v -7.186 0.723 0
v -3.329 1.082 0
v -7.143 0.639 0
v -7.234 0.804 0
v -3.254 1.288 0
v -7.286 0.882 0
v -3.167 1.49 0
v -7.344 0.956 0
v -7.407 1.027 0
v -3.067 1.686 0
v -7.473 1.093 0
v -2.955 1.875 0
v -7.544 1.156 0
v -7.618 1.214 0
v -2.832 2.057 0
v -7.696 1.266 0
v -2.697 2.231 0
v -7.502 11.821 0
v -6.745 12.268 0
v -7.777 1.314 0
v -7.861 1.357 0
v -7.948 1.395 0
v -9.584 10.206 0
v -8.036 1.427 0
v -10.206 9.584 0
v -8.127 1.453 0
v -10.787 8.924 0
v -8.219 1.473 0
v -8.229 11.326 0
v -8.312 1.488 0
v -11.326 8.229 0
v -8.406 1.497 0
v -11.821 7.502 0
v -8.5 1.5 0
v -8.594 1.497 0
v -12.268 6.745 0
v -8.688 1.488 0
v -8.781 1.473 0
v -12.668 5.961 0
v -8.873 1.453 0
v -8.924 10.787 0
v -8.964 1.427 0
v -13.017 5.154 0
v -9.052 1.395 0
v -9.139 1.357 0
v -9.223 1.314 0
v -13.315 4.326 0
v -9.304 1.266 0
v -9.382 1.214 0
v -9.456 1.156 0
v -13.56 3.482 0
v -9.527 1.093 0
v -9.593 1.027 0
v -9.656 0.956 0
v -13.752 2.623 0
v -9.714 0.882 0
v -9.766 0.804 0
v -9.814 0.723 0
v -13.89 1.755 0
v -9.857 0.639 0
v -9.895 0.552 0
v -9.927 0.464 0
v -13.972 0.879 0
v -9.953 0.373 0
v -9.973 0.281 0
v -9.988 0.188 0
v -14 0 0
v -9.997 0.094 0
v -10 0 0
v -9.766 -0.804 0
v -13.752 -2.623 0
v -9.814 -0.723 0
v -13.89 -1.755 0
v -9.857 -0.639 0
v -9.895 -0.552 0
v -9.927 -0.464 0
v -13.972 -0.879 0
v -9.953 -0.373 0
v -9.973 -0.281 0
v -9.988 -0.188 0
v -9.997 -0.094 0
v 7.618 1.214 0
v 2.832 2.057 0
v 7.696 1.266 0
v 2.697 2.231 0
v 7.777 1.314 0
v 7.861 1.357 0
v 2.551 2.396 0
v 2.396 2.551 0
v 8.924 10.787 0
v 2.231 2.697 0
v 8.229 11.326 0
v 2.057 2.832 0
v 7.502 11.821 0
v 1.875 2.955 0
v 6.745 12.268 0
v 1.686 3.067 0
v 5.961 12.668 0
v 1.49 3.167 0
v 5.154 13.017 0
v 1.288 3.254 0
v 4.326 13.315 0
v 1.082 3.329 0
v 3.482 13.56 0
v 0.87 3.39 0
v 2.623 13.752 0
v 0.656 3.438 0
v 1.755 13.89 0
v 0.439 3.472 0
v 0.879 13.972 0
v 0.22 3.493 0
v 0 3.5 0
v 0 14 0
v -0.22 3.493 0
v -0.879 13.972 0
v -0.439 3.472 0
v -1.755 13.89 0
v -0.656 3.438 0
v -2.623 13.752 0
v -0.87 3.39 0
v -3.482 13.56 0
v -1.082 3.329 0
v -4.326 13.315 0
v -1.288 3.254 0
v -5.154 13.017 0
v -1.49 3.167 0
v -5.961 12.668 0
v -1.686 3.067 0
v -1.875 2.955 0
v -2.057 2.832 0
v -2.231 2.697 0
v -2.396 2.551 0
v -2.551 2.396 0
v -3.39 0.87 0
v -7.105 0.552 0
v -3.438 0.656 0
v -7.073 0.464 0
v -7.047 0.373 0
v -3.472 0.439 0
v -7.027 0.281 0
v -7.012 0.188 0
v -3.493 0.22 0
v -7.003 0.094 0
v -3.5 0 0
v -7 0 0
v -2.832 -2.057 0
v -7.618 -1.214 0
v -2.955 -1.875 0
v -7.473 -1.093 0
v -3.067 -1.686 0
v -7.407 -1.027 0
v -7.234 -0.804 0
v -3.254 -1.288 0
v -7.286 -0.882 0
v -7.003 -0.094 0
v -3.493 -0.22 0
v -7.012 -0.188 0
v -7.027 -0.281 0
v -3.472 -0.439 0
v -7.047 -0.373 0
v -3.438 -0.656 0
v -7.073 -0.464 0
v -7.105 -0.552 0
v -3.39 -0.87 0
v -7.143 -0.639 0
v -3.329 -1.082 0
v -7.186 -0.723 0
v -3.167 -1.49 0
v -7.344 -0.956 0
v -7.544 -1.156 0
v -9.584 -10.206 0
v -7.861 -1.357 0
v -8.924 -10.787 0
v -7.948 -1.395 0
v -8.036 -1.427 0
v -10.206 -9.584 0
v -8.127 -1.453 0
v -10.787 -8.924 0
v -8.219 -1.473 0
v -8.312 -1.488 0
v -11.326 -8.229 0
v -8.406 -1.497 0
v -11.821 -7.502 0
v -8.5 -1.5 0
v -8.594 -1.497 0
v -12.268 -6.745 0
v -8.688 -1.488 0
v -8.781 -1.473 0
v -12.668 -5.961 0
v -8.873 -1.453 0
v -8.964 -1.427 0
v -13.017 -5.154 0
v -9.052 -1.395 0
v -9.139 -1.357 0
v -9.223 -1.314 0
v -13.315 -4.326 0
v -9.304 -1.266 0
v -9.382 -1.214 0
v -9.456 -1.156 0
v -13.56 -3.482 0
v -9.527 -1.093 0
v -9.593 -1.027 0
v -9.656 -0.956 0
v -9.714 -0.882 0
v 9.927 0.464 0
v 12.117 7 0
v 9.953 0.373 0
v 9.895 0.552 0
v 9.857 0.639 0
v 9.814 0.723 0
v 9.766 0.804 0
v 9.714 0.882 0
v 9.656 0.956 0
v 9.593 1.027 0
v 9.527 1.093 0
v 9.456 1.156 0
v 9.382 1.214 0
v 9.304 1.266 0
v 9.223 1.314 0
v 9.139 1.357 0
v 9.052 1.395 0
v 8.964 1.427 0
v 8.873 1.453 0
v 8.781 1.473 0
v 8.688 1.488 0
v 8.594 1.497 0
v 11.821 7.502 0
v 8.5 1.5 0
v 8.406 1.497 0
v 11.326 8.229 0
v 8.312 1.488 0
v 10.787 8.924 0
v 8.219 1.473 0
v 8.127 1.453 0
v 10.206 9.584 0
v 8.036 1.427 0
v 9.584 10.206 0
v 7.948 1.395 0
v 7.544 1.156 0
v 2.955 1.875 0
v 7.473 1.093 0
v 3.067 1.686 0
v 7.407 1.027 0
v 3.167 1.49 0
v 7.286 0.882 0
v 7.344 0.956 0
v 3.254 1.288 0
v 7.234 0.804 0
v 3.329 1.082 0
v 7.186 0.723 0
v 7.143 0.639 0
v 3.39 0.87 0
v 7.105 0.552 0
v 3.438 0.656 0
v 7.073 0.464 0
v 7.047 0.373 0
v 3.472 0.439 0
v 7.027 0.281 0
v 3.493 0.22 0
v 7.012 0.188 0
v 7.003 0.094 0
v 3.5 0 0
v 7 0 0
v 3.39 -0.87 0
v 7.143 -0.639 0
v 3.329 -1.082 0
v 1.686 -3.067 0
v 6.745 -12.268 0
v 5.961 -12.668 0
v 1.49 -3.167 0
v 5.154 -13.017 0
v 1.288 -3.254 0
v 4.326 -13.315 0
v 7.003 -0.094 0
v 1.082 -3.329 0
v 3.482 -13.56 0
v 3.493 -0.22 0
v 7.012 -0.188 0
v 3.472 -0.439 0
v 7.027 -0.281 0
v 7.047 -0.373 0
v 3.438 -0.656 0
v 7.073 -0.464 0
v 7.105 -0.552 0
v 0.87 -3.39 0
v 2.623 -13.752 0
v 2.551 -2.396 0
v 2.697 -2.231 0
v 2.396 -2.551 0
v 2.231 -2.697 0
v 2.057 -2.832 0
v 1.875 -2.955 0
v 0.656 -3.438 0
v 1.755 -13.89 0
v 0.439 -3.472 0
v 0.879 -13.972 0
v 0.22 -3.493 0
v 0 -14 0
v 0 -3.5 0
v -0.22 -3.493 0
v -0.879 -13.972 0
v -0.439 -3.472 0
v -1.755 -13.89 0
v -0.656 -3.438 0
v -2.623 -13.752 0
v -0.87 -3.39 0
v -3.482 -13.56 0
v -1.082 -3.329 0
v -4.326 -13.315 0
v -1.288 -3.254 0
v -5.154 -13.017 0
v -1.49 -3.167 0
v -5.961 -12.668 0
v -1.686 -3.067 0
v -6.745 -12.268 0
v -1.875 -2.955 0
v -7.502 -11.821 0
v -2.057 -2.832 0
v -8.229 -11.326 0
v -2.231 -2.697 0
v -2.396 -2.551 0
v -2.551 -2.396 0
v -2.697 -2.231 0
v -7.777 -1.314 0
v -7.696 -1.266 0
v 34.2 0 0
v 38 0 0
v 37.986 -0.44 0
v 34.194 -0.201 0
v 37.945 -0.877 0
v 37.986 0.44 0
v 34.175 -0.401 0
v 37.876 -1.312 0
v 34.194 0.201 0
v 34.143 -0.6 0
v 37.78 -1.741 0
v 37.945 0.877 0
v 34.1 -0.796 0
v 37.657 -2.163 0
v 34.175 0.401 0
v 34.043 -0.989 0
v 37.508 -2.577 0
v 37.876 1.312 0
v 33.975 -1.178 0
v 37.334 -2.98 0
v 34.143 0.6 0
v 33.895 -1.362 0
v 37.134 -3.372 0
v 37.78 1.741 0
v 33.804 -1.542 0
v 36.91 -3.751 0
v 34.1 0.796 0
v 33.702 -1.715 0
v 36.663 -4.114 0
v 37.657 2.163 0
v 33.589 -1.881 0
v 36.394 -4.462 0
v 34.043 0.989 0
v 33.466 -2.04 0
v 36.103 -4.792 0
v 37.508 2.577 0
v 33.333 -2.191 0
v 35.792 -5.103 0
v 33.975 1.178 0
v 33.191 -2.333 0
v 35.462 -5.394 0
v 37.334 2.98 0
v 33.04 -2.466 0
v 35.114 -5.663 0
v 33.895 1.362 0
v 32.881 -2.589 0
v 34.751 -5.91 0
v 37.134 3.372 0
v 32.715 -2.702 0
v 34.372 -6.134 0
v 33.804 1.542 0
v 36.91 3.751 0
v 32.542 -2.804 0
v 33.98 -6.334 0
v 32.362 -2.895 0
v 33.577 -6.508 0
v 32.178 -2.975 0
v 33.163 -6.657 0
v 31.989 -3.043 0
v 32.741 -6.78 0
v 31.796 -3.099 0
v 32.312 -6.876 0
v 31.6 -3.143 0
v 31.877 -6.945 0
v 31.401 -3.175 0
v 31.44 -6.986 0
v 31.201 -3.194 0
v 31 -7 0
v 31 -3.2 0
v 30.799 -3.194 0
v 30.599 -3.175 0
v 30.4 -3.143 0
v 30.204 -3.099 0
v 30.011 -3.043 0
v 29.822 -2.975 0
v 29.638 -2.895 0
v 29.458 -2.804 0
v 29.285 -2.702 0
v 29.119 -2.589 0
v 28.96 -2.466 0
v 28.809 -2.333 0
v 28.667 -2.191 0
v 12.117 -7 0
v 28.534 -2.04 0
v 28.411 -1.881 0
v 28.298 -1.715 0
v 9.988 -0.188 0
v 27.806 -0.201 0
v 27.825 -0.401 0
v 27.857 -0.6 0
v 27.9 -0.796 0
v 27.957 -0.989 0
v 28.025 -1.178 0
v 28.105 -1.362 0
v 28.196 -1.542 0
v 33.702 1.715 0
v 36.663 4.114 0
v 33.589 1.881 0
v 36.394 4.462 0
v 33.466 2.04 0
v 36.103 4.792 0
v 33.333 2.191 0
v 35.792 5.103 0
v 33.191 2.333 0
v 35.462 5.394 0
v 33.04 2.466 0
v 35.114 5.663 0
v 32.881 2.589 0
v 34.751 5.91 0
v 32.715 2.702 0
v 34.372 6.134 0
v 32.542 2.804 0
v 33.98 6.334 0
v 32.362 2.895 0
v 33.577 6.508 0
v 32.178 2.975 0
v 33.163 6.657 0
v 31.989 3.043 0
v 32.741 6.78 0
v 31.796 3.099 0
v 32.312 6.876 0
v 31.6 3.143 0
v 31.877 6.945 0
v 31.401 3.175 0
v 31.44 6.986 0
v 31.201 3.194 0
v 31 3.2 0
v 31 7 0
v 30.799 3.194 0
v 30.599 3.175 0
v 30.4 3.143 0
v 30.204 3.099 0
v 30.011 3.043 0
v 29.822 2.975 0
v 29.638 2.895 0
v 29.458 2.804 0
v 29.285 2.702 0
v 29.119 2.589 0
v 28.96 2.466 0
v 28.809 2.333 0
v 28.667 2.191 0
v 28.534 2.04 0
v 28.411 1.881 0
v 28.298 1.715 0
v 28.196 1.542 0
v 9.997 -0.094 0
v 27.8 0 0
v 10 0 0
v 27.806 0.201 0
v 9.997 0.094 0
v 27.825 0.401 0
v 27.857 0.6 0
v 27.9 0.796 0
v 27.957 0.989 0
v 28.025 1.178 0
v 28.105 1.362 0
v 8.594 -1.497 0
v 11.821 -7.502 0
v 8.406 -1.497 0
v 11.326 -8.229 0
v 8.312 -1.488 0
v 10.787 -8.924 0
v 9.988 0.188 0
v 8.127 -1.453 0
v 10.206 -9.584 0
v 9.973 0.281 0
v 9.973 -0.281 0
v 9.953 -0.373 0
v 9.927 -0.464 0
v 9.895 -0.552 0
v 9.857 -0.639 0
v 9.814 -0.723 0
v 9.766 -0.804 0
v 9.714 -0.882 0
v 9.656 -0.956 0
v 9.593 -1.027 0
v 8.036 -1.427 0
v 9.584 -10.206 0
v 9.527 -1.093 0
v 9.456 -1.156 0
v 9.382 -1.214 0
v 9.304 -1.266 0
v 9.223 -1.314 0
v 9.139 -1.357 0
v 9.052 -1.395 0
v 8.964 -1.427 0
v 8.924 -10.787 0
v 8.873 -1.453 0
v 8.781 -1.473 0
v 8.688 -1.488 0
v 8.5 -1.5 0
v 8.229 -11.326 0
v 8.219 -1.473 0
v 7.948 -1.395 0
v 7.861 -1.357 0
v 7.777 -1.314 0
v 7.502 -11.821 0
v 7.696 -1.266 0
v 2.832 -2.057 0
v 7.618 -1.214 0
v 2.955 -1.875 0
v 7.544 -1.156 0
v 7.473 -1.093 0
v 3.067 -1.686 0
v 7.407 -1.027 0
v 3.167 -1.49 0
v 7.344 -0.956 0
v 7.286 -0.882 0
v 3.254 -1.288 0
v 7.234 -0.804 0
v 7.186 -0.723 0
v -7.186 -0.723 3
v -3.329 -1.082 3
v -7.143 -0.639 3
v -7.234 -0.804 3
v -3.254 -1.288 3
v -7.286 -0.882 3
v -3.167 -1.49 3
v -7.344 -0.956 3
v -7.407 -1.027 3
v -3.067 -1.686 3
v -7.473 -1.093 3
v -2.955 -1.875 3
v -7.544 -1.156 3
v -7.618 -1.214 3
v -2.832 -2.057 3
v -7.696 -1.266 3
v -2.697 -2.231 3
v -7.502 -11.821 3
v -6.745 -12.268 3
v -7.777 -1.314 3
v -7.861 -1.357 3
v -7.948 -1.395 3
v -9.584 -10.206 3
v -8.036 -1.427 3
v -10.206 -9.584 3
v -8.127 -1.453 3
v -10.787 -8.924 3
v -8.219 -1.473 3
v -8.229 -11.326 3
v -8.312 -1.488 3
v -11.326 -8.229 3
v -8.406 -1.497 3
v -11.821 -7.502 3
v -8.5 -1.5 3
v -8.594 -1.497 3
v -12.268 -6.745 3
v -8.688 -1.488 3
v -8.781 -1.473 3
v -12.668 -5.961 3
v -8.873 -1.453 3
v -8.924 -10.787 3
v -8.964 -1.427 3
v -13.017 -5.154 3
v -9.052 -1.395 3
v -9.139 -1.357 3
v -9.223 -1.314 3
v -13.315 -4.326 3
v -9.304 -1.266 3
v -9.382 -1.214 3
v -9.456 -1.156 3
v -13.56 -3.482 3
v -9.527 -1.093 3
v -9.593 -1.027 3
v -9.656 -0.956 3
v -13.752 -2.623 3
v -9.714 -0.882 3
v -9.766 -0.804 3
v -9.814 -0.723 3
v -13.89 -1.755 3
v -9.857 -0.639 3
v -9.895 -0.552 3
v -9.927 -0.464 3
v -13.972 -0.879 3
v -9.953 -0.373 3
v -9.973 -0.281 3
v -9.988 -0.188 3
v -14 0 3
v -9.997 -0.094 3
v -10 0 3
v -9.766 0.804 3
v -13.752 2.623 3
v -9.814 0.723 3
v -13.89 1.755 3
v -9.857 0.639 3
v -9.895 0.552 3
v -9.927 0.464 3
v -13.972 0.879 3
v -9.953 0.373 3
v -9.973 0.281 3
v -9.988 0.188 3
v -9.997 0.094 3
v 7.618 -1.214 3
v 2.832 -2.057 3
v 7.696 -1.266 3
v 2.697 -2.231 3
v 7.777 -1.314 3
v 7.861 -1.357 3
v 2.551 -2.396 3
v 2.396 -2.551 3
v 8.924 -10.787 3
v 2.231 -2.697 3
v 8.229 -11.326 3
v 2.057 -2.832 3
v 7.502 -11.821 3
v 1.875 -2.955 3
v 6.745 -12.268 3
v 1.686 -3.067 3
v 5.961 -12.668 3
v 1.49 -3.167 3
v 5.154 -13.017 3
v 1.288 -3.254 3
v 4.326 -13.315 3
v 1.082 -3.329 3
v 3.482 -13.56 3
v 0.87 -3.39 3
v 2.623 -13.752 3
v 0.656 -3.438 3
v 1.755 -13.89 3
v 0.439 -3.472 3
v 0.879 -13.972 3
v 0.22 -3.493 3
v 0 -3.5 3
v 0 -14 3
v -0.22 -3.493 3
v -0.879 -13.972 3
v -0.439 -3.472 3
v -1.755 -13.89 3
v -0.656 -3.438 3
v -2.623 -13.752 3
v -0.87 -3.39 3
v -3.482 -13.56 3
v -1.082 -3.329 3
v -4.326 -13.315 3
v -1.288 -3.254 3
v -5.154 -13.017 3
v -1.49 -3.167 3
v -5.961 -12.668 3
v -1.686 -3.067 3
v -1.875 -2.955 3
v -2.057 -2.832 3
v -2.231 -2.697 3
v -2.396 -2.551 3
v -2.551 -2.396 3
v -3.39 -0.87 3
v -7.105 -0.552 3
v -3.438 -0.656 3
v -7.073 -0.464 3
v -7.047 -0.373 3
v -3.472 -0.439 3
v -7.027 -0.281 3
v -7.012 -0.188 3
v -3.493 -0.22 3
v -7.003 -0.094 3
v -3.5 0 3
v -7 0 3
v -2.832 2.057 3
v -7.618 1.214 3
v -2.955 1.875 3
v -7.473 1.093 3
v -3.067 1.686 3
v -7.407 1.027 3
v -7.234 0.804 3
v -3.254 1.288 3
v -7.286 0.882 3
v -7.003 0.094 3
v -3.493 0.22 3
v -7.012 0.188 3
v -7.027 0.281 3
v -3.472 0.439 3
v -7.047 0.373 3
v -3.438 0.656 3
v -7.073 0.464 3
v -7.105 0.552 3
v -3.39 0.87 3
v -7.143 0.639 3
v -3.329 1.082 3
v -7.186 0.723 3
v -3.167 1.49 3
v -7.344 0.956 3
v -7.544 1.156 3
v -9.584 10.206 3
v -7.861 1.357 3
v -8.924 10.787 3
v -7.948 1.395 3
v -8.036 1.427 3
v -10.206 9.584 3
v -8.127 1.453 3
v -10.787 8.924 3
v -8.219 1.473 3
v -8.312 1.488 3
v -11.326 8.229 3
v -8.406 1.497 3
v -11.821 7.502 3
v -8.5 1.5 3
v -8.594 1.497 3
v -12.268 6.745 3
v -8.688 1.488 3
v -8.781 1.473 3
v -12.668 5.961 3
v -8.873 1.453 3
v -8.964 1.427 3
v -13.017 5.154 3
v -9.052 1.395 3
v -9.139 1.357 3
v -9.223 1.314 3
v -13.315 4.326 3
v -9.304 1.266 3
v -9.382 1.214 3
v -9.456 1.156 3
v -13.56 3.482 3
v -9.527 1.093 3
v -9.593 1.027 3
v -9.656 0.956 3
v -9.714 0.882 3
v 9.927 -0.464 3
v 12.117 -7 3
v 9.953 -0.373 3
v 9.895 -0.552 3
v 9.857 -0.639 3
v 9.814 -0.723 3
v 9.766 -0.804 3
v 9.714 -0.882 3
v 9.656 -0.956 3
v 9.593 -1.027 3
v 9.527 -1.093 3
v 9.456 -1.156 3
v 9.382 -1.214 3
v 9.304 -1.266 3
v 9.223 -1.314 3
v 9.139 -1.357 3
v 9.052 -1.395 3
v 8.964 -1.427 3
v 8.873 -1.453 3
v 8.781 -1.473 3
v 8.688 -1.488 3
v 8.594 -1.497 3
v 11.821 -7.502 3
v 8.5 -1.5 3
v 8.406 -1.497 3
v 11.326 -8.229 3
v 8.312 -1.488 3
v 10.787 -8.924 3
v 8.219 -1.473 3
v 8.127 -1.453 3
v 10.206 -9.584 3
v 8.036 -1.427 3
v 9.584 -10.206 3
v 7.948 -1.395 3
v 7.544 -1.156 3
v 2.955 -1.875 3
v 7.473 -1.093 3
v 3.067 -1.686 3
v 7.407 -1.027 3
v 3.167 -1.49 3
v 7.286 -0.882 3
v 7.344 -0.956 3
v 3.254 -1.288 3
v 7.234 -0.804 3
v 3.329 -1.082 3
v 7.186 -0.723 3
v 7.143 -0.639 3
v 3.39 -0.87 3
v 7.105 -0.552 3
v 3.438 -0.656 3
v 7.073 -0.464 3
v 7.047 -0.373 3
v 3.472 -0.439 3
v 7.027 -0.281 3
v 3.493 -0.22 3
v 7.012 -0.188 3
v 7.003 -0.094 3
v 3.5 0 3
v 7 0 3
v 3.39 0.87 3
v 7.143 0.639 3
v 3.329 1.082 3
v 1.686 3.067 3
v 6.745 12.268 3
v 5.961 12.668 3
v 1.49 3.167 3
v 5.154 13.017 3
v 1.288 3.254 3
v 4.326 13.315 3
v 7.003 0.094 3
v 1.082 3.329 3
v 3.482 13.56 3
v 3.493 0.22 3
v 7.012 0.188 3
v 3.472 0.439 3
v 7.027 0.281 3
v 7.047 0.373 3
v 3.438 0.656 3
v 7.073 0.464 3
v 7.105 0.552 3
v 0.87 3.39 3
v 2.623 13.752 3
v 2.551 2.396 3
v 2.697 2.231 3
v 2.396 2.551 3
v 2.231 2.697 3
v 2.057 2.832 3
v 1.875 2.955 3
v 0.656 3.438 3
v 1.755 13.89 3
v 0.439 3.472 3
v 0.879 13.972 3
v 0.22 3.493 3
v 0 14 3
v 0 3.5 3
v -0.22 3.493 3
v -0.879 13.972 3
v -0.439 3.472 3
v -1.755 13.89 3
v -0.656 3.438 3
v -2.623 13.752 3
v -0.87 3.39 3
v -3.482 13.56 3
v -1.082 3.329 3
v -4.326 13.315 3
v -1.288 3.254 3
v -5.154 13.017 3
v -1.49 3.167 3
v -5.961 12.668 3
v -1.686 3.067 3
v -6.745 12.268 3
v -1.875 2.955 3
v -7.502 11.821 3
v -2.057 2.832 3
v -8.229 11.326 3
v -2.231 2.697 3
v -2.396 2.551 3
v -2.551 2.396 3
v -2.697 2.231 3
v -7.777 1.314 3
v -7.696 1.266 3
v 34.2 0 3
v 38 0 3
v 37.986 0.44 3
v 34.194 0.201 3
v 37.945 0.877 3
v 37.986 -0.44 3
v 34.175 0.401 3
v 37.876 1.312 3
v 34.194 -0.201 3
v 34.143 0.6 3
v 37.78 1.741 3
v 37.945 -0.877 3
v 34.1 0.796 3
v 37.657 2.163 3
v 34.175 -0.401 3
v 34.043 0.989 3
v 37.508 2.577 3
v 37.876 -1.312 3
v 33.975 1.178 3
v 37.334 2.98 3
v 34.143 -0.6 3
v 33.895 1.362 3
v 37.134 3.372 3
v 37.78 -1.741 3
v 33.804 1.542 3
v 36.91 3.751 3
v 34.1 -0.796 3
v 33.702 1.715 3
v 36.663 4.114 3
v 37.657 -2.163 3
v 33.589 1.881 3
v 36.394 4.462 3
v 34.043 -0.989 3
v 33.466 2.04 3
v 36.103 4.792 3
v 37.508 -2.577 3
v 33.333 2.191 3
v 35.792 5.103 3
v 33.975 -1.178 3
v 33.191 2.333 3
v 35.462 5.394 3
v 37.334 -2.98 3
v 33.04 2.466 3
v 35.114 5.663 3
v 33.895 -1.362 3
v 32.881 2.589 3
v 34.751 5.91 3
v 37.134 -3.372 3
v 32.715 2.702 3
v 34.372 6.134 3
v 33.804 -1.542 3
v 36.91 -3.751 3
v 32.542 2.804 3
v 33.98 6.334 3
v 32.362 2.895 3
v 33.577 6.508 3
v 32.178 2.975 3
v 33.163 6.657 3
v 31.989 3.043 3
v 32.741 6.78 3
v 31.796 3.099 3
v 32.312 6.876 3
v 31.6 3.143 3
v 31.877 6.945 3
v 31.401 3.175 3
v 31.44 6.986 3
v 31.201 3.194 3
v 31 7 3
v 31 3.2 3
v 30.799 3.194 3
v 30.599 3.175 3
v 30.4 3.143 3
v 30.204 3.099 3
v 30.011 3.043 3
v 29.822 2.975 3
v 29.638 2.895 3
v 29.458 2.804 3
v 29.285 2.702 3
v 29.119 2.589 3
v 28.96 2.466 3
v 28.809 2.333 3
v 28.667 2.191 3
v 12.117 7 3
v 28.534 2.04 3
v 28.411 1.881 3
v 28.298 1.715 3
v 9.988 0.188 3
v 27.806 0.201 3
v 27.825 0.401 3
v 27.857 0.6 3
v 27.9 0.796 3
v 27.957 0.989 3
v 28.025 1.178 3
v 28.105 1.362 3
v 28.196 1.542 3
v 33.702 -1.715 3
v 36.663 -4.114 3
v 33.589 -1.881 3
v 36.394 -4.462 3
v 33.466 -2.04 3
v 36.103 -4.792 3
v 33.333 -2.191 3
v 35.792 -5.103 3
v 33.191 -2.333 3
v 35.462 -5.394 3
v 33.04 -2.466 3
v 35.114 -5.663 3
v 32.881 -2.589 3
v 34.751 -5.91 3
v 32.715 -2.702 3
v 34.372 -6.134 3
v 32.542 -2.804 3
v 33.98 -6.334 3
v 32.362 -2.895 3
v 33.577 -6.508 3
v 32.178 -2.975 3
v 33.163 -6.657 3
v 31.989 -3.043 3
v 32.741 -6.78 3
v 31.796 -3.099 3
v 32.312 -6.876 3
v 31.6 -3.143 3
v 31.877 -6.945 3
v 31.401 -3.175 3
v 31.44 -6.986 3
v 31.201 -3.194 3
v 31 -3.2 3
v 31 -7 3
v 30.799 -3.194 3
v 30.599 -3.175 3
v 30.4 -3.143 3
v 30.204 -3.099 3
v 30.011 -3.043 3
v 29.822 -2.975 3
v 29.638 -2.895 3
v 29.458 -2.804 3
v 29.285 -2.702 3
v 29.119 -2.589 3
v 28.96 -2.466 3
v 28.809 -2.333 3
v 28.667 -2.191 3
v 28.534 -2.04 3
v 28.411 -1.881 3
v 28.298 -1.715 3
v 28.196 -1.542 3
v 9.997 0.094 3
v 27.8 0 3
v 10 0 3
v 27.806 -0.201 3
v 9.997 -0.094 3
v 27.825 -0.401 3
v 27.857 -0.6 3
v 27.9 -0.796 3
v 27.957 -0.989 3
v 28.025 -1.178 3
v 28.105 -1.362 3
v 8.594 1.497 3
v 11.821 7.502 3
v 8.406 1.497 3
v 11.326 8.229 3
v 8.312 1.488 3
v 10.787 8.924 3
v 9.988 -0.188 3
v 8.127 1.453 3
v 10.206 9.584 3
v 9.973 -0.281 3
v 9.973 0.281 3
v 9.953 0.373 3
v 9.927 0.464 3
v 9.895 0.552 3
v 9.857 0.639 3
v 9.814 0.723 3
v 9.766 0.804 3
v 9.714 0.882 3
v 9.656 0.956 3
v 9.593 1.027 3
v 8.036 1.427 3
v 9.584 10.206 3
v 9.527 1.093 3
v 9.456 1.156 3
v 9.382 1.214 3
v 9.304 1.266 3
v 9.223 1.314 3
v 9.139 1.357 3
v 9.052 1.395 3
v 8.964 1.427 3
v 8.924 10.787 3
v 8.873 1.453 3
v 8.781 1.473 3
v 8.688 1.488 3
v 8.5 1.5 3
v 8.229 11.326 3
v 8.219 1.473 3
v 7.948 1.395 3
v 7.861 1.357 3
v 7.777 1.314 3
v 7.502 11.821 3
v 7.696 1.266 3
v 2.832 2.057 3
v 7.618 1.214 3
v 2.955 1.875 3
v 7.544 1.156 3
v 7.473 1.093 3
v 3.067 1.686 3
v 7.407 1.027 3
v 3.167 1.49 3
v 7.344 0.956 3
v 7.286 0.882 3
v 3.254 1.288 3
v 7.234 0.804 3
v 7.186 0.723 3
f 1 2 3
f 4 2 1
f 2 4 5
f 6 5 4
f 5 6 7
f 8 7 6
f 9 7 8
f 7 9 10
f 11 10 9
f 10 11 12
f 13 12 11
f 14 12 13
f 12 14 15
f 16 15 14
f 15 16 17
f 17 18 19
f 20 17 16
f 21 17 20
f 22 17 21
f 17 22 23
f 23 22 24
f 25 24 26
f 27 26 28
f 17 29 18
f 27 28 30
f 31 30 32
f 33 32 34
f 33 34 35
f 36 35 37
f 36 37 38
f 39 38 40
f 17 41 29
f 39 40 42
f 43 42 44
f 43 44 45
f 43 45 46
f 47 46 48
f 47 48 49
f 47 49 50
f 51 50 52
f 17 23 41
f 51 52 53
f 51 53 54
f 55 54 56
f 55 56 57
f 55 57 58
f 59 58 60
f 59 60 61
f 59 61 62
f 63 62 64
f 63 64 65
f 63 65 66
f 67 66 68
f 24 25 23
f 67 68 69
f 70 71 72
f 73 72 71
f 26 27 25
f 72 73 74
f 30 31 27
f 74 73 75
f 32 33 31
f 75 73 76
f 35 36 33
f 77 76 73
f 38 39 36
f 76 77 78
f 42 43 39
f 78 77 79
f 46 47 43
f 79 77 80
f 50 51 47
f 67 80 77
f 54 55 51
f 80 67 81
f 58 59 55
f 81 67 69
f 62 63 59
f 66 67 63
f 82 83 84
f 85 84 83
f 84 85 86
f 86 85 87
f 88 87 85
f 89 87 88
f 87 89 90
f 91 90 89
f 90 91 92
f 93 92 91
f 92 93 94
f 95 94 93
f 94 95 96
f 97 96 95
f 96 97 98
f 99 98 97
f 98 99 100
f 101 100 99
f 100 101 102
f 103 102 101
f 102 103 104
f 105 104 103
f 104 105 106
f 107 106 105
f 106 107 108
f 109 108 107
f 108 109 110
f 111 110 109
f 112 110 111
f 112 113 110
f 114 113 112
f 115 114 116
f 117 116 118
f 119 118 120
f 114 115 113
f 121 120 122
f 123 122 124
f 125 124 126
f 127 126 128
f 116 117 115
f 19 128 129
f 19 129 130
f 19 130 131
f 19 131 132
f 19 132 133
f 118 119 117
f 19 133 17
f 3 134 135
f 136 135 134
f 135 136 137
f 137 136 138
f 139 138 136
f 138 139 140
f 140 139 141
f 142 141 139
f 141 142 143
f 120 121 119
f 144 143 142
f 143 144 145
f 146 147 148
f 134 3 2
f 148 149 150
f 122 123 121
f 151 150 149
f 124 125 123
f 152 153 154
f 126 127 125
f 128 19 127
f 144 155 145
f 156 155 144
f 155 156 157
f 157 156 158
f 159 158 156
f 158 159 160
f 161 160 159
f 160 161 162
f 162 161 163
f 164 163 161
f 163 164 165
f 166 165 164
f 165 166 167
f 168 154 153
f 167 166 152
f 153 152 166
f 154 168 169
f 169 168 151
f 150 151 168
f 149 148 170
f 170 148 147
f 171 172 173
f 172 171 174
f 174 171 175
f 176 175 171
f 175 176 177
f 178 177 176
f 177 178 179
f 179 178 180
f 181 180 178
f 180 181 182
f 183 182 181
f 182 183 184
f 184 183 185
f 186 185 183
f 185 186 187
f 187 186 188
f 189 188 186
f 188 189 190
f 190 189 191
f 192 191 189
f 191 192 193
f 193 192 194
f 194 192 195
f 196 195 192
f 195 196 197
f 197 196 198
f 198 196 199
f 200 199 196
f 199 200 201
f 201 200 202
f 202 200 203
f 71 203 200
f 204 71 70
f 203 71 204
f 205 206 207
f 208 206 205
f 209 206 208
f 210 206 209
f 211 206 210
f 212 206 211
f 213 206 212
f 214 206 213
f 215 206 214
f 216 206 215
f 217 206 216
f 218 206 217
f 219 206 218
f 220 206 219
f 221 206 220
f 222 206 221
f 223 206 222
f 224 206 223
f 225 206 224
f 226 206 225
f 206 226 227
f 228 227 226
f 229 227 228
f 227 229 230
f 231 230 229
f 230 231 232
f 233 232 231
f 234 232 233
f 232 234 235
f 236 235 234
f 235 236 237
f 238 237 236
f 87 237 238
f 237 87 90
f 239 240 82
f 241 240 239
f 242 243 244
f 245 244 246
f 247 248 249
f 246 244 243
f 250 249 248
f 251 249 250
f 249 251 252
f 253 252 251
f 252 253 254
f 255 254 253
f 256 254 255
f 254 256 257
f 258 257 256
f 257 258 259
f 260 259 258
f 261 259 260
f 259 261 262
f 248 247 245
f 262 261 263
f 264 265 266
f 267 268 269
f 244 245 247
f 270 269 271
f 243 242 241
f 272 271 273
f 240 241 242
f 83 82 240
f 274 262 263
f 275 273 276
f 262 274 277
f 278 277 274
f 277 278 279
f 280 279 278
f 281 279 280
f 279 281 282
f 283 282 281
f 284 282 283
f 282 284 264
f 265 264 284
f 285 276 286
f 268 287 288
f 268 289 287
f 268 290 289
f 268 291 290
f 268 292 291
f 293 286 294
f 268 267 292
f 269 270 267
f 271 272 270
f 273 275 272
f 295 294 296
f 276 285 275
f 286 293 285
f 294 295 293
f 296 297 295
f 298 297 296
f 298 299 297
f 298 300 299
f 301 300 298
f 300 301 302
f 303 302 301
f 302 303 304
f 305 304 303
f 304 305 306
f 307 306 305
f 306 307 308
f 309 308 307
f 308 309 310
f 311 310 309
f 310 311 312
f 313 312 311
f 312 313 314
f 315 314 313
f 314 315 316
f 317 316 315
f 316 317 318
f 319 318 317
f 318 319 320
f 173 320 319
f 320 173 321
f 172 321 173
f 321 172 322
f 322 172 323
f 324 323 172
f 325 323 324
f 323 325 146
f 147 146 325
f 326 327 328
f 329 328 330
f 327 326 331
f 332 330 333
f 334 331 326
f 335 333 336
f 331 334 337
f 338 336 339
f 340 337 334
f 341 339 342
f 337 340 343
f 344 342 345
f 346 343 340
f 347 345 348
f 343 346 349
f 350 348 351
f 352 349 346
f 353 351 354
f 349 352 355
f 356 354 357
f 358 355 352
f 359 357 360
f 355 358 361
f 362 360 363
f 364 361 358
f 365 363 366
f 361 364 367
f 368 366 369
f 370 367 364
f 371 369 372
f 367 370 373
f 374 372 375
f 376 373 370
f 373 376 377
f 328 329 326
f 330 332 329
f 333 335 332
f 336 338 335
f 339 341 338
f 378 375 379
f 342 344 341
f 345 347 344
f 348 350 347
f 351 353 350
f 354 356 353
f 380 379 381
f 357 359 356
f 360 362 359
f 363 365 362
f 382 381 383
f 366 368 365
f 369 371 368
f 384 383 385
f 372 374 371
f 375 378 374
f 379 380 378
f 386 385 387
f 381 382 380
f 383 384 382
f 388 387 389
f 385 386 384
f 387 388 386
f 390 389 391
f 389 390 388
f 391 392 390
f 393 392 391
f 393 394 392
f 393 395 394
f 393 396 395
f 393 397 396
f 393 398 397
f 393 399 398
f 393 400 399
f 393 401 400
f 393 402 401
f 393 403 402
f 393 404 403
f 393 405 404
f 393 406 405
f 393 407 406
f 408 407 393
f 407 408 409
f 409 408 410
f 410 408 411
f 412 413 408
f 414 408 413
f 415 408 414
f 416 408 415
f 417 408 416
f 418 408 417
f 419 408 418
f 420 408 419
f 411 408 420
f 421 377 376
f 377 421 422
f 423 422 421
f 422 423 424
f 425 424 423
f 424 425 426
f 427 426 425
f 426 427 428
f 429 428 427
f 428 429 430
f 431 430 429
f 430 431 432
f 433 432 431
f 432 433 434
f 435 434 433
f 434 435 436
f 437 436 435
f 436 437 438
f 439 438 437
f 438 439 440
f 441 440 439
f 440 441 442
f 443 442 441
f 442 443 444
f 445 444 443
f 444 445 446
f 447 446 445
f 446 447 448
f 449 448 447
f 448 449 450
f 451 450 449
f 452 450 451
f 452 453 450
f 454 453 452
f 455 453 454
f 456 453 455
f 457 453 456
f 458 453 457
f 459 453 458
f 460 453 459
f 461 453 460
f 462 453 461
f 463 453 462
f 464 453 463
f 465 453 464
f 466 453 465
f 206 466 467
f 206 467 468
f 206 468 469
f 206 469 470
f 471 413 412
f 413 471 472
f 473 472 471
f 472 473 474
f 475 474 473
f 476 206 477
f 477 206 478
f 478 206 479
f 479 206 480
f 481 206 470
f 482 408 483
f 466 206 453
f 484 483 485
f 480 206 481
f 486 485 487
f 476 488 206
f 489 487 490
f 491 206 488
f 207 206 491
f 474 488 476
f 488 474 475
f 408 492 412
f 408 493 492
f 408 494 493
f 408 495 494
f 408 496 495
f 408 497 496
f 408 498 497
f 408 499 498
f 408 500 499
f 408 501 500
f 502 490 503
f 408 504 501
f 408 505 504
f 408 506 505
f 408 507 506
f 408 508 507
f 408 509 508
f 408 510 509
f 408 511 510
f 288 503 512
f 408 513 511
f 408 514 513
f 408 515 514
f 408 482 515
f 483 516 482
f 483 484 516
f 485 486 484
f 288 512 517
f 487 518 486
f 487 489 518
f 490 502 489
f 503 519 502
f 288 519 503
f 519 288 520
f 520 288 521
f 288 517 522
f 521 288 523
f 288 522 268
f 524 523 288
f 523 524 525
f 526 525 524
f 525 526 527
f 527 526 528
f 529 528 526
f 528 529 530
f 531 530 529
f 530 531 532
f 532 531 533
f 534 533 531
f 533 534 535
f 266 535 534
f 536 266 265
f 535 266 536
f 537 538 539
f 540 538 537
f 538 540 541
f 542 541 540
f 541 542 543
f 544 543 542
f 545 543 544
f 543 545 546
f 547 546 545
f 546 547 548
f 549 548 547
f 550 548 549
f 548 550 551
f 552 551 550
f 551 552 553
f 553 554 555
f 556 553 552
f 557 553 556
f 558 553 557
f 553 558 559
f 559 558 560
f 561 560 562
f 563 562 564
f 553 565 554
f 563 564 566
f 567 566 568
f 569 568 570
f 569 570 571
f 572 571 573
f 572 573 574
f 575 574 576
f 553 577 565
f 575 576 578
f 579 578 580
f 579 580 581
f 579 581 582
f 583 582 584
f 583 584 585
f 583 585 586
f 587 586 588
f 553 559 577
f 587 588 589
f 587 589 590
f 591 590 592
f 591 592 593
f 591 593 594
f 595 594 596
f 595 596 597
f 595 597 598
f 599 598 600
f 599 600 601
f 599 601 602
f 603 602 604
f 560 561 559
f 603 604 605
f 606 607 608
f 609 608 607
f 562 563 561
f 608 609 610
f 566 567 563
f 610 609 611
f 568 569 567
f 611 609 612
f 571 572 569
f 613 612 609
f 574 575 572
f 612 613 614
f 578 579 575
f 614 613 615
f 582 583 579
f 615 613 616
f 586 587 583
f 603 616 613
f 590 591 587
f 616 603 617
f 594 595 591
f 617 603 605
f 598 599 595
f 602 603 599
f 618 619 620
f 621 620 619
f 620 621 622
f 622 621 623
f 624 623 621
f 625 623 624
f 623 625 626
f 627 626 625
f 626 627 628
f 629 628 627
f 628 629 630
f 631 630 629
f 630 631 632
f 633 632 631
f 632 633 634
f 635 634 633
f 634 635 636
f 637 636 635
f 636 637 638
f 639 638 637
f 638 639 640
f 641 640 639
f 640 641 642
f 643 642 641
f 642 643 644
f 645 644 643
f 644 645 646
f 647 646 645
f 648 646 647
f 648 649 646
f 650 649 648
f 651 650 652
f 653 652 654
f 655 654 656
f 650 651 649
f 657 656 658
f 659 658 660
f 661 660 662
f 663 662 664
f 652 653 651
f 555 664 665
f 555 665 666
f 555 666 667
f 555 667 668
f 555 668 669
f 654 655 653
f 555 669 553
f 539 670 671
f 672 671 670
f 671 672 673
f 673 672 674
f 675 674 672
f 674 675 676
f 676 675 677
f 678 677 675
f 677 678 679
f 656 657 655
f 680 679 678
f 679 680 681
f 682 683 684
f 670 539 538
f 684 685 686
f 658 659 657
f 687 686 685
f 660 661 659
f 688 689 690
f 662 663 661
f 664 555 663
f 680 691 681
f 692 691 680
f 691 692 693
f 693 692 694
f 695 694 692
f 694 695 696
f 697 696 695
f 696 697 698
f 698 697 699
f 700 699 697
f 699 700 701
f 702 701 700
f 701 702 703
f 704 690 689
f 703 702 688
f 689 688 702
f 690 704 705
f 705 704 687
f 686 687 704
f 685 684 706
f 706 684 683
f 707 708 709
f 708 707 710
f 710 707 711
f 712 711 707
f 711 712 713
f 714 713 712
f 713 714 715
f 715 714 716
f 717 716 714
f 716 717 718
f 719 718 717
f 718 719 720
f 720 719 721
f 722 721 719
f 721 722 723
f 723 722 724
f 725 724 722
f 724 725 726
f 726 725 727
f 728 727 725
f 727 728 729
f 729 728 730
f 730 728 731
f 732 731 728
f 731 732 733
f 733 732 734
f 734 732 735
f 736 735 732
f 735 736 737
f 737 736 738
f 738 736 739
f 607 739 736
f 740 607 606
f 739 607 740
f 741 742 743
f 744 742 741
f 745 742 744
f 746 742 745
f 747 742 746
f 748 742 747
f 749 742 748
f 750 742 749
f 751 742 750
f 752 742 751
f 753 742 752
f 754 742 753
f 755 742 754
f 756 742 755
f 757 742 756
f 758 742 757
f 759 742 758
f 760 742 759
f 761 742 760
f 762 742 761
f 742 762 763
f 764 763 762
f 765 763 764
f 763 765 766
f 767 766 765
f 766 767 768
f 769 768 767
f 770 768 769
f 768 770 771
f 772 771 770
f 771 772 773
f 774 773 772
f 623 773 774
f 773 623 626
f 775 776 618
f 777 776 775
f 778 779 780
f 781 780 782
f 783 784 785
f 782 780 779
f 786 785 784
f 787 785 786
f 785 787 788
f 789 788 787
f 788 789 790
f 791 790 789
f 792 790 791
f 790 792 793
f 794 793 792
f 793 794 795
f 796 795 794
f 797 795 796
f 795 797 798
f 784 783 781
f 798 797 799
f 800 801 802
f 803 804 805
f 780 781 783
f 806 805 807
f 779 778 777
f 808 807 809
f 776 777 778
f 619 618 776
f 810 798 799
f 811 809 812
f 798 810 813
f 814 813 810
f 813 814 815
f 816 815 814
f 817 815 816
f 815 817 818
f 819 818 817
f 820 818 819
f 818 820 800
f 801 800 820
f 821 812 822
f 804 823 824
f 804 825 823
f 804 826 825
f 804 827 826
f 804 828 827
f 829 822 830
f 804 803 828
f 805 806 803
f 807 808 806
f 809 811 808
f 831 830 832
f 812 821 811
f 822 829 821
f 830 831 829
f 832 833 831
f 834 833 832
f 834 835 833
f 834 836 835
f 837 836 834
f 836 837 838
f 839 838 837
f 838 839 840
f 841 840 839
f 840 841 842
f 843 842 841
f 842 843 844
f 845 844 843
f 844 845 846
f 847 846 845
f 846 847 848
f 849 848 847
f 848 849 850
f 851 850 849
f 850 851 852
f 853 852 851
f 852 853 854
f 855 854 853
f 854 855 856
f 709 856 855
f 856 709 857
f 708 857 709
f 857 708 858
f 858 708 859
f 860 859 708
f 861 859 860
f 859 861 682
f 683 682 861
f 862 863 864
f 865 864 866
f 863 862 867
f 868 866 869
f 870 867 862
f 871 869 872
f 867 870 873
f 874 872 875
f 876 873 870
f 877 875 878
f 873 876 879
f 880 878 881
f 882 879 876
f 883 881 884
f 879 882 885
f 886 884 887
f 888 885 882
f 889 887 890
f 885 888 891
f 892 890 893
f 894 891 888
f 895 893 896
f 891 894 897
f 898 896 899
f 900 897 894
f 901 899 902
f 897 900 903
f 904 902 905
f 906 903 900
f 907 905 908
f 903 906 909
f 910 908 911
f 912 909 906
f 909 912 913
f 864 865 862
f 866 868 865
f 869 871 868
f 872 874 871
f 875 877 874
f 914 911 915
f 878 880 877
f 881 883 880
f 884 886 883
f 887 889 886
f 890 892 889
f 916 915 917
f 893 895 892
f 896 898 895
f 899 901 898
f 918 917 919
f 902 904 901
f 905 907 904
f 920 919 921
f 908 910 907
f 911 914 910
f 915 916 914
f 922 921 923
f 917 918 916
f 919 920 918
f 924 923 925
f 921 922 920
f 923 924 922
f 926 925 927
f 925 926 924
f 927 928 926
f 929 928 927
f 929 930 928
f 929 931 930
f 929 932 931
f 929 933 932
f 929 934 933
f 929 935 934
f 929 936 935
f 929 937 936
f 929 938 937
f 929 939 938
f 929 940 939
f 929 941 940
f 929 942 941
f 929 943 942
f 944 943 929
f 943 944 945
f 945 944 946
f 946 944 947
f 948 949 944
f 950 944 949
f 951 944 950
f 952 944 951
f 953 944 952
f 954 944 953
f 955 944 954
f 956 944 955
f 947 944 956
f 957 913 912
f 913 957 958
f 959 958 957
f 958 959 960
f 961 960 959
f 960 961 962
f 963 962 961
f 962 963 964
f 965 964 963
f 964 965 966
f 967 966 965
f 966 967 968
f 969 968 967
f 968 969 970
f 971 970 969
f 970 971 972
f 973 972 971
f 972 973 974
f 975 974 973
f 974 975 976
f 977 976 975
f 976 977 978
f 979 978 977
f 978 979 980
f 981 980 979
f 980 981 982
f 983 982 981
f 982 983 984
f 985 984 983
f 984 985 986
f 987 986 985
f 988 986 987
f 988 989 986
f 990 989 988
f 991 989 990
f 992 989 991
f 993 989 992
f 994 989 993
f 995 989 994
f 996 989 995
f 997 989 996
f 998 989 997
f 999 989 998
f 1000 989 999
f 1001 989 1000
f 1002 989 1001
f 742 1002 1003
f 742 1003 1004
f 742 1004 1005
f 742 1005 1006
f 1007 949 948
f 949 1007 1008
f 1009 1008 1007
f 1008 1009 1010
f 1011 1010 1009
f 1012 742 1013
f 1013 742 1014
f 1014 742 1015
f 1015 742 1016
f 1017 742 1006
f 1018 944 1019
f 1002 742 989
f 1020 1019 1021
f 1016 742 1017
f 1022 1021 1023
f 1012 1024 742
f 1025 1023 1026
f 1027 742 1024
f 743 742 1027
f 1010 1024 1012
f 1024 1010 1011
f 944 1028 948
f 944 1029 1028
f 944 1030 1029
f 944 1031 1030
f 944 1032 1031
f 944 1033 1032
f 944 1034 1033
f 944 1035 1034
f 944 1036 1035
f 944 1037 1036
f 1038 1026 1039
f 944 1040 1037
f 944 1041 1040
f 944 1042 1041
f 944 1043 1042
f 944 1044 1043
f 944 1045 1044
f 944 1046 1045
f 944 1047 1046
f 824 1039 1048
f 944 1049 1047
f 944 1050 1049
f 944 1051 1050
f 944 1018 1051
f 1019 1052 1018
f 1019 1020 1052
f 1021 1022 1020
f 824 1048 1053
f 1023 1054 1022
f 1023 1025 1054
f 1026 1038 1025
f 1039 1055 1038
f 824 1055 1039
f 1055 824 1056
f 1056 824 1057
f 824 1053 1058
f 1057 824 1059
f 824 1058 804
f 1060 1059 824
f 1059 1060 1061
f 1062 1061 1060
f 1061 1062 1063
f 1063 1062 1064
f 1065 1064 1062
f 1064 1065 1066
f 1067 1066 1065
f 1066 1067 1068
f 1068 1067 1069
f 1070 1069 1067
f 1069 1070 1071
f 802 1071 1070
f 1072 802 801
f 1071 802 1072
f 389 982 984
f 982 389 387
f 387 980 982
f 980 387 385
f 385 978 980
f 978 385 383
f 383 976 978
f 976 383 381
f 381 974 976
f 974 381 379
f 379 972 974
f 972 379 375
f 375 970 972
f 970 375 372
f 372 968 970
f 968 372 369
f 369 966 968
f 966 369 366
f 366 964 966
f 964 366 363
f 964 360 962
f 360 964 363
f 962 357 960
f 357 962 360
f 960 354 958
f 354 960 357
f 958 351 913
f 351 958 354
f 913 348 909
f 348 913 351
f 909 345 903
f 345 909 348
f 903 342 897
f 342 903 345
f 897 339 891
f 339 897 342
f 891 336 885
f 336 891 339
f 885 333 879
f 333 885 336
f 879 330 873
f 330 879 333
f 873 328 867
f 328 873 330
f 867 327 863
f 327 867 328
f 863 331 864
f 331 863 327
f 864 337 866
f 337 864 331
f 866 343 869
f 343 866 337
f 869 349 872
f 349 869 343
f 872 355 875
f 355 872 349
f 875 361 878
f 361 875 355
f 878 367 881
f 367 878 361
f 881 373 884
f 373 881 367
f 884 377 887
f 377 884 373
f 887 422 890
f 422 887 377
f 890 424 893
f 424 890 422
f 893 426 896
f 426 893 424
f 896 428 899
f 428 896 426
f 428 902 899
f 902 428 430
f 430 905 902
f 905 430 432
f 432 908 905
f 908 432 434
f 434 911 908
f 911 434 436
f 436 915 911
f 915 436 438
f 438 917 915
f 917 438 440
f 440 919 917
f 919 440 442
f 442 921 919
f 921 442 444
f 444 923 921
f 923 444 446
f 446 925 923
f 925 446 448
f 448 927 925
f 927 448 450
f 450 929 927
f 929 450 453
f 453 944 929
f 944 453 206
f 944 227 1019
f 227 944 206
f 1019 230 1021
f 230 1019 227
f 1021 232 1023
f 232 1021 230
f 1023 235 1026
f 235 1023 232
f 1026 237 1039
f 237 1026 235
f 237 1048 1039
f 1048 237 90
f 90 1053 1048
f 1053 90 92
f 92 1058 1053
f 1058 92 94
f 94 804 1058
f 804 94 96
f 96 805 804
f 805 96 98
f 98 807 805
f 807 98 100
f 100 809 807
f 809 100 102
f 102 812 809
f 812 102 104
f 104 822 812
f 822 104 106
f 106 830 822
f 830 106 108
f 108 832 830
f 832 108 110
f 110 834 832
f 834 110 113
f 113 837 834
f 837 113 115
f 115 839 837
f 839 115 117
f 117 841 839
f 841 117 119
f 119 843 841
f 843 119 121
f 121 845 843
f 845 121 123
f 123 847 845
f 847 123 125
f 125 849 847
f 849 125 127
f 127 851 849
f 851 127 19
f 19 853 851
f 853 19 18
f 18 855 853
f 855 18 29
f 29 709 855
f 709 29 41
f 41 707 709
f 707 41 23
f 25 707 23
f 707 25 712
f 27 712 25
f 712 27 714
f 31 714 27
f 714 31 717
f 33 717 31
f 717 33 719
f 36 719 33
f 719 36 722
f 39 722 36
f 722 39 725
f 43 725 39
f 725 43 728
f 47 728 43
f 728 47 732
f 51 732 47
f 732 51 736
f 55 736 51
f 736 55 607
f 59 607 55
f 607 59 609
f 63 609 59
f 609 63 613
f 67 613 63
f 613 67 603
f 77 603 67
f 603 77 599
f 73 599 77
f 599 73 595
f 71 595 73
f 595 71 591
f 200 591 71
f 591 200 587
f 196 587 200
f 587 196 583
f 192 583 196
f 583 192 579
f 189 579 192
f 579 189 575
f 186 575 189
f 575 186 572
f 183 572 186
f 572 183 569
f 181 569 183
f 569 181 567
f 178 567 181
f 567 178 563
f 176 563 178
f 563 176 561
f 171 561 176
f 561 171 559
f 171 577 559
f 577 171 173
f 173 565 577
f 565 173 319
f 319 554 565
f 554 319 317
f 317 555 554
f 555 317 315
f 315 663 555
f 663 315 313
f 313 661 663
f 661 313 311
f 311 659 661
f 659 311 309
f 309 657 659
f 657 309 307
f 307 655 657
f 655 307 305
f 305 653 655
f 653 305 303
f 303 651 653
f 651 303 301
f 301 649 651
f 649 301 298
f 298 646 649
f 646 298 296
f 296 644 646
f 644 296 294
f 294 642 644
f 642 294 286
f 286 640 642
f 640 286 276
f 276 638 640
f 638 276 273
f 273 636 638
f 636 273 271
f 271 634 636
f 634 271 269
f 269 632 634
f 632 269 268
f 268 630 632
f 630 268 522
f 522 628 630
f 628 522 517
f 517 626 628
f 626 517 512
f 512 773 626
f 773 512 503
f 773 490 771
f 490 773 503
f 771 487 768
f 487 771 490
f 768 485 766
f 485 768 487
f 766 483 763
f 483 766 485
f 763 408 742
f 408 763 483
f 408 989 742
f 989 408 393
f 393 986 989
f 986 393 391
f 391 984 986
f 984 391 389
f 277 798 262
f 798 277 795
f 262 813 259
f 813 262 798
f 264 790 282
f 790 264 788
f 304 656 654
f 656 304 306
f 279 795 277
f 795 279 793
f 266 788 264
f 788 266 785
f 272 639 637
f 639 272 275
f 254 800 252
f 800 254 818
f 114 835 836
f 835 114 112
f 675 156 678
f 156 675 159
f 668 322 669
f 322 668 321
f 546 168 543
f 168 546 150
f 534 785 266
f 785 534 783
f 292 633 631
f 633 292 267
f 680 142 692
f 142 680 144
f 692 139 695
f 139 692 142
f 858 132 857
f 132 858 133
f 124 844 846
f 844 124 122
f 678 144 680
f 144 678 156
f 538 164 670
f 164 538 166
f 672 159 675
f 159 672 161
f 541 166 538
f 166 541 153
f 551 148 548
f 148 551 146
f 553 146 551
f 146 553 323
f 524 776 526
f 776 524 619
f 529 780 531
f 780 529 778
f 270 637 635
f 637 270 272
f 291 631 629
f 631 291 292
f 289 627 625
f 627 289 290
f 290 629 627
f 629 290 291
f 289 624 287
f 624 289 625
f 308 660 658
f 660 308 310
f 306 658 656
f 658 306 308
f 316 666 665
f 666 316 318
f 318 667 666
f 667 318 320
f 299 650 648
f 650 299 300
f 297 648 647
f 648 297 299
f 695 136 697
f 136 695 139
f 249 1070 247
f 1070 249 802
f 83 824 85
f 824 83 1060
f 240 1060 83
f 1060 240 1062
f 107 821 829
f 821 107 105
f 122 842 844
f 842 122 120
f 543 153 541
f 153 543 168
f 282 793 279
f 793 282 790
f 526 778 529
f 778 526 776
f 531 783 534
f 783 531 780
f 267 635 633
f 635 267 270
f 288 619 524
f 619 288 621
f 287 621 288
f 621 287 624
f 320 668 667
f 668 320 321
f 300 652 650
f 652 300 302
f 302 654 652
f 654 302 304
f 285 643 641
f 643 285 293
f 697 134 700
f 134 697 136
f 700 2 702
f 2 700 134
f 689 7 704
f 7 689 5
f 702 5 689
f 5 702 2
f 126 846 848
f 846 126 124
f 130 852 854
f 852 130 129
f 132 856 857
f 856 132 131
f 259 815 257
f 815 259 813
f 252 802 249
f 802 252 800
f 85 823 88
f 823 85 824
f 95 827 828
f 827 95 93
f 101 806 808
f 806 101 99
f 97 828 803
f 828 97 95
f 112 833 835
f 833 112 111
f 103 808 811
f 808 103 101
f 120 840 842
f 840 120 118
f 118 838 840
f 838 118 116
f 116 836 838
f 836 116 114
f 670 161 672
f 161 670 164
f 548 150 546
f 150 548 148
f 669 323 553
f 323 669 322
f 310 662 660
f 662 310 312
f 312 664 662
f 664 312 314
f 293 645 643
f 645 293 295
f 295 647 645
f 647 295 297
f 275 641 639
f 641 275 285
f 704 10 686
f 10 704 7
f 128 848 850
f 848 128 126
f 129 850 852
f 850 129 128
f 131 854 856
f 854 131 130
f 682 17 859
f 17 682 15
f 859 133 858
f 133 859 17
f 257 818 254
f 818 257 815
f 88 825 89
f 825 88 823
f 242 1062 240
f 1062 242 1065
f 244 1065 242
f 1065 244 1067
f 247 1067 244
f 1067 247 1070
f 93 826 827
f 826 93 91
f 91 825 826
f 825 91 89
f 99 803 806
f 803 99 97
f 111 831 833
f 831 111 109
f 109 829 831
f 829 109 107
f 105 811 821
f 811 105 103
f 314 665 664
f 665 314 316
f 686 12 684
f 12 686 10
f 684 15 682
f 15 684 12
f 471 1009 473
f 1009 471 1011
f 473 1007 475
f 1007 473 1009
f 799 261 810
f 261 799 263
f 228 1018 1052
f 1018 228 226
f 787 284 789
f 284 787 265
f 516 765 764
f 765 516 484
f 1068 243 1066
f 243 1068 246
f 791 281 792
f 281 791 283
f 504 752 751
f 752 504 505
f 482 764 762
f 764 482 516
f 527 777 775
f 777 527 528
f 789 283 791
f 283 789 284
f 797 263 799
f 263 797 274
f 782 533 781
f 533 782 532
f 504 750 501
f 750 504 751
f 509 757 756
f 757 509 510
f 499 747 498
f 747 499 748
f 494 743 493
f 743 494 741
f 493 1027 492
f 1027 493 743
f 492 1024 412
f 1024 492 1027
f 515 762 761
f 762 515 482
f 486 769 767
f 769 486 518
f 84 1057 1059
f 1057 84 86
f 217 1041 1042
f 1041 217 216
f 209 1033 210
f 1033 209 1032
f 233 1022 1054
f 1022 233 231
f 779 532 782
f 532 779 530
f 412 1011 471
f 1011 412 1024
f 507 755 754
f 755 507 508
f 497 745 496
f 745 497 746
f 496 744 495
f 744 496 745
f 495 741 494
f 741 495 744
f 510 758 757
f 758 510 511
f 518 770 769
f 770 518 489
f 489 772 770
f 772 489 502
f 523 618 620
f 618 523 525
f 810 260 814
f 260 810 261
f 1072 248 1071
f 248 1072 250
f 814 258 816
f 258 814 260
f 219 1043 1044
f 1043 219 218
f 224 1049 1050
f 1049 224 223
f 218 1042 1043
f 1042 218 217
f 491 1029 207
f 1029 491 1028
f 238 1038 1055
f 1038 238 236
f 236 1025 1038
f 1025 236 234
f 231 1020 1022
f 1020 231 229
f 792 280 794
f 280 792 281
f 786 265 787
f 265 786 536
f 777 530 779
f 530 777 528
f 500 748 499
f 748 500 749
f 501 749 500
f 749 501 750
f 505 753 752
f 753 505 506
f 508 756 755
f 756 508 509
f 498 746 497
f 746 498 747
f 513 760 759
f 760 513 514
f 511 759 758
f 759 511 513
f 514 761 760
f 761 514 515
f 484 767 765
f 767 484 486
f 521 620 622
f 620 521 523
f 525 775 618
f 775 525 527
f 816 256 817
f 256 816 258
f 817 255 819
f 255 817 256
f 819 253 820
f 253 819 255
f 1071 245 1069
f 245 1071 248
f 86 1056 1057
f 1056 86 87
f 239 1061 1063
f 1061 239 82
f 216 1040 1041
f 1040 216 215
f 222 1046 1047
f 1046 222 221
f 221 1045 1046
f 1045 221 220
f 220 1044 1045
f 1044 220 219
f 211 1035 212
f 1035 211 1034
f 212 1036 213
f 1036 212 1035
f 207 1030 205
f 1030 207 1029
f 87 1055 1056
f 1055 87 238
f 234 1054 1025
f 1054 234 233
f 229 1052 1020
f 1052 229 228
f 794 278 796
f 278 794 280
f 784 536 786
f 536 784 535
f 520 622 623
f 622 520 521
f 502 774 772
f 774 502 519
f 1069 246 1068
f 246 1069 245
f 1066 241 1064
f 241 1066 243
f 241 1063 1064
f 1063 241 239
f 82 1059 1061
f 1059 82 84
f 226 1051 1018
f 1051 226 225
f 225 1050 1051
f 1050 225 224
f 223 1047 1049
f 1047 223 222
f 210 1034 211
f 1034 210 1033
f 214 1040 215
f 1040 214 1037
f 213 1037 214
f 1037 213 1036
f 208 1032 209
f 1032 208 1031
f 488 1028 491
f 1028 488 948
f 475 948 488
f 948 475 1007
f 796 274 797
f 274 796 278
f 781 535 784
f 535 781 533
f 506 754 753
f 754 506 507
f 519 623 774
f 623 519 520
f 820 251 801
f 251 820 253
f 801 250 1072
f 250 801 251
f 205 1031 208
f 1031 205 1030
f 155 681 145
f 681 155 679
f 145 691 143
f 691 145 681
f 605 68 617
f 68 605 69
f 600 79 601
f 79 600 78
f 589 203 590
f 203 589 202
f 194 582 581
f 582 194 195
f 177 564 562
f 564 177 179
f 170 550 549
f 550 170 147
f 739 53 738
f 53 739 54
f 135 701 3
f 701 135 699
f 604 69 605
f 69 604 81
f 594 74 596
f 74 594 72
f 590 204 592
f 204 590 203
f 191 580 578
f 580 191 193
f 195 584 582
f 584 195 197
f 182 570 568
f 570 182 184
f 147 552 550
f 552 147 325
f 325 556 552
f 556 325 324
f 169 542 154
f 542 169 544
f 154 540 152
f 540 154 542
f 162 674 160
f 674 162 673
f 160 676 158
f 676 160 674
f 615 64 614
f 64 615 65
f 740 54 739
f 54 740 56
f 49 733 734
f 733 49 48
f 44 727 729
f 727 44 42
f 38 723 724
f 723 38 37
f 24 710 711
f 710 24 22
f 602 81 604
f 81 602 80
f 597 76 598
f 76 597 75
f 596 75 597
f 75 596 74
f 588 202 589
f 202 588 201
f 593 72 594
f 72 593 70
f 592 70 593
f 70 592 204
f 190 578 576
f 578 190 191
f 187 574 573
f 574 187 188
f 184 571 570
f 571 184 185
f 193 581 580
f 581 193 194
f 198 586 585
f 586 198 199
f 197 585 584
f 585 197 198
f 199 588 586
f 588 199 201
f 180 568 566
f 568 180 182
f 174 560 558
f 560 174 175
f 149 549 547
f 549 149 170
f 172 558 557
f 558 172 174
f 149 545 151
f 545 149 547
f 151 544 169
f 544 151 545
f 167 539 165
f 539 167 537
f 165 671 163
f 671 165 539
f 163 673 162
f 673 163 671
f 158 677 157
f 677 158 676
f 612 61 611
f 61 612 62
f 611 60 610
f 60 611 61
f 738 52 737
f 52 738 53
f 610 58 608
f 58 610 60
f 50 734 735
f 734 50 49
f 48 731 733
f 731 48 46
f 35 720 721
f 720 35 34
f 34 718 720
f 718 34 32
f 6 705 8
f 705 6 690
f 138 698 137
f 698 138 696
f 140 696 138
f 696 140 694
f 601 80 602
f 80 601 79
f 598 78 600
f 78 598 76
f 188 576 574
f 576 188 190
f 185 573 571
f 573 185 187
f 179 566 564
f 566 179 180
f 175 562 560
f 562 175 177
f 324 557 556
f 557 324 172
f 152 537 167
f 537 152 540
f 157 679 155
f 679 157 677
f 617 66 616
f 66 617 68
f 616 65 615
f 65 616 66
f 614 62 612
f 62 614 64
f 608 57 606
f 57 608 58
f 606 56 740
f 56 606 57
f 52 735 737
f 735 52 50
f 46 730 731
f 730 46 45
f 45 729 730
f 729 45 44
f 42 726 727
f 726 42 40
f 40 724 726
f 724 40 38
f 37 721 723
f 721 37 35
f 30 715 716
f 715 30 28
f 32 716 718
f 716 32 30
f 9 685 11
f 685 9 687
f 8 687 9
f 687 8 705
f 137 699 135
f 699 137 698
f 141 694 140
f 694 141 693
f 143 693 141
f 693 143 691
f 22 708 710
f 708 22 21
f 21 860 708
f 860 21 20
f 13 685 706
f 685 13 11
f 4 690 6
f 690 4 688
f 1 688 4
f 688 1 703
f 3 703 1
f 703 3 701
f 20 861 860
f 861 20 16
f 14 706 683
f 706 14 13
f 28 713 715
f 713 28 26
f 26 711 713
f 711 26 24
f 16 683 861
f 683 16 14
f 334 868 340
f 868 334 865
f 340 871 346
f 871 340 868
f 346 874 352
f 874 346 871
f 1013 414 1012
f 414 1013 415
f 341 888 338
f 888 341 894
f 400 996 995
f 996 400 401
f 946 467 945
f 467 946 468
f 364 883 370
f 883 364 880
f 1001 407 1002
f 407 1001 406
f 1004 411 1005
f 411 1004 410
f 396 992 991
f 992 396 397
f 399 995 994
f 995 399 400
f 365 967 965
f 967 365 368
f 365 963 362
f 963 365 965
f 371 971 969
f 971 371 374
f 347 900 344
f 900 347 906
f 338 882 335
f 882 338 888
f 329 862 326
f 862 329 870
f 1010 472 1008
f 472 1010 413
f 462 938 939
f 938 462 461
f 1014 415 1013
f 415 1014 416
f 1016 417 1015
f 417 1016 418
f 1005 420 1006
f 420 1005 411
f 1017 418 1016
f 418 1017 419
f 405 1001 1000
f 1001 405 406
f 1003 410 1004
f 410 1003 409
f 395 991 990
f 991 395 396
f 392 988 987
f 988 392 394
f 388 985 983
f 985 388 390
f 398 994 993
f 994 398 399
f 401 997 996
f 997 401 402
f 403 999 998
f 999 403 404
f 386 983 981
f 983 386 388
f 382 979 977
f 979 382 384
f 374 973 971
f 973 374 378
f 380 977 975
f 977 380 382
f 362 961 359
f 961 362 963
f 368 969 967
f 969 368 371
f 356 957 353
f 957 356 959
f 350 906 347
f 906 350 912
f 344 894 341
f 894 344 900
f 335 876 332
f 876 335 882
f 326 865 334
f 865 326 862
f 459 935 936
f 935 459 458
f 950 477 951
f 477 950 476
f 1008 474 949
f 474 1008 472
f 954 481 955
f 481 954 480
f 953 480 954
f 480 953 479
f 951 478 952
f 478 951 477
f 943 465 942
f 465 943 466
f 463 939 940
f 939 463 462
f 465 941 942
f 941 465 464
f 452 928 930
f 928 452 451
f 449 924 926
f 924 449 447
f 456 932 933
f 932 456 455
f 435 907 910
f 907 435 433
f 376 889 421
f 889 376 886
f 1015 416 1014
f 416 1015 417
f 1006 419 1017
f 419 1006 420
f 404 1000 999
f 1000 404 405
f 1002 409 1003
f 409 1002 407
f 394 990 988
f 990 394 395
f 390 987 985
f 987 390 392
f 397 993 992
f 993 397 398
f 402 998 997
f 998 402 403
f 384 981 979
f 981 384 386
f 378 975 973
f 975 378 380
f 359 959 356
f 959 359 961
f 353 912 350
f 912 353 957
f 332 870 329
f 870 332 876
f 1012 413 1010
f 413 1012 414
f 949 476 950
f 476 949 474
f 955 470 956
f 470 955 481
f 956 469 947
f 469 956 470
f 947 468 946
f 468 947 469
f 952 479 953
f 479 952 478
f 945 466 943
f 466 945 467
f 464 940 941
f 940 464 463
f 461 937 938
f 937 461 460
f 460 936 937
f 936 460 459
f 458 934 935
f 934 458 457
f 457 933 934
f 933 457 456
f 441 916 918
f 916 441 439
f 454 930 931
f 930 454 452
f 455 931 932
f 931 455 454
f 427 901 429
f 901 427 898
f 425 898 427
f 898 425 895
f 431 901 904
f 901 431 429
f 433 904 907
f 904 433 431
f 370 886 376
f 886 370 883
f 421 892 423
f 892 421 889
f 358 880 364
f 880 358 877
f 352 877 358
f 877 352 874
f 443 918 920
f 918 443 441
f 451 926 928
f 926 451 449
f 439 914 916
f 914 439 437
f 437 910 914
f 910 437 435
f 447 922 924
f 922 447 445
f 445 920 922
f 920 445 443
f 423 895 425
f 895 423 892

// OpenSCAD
$fn=100;

difference () {
    linear_extrude (3) {
        polygon ([
            [0, -7],
            [0, 7],
            [31, 7],
            [31, -7]
        ]);
        circle (14);
        translate ([31, 0, 0]) circle (7);
    }

    translate ([0, 0, -1])
        linear_extrude (5) circle (3.5);
    translate ([8.5, 0, -1])
        linear_extrude (5) circle (1.5);
    translate ([-8.5, 0, -1])
        linear_extrude (5) circle (1.5);
    translate ([31, 0, -1])
        linear_extrude (5) circle (3.2);
}
